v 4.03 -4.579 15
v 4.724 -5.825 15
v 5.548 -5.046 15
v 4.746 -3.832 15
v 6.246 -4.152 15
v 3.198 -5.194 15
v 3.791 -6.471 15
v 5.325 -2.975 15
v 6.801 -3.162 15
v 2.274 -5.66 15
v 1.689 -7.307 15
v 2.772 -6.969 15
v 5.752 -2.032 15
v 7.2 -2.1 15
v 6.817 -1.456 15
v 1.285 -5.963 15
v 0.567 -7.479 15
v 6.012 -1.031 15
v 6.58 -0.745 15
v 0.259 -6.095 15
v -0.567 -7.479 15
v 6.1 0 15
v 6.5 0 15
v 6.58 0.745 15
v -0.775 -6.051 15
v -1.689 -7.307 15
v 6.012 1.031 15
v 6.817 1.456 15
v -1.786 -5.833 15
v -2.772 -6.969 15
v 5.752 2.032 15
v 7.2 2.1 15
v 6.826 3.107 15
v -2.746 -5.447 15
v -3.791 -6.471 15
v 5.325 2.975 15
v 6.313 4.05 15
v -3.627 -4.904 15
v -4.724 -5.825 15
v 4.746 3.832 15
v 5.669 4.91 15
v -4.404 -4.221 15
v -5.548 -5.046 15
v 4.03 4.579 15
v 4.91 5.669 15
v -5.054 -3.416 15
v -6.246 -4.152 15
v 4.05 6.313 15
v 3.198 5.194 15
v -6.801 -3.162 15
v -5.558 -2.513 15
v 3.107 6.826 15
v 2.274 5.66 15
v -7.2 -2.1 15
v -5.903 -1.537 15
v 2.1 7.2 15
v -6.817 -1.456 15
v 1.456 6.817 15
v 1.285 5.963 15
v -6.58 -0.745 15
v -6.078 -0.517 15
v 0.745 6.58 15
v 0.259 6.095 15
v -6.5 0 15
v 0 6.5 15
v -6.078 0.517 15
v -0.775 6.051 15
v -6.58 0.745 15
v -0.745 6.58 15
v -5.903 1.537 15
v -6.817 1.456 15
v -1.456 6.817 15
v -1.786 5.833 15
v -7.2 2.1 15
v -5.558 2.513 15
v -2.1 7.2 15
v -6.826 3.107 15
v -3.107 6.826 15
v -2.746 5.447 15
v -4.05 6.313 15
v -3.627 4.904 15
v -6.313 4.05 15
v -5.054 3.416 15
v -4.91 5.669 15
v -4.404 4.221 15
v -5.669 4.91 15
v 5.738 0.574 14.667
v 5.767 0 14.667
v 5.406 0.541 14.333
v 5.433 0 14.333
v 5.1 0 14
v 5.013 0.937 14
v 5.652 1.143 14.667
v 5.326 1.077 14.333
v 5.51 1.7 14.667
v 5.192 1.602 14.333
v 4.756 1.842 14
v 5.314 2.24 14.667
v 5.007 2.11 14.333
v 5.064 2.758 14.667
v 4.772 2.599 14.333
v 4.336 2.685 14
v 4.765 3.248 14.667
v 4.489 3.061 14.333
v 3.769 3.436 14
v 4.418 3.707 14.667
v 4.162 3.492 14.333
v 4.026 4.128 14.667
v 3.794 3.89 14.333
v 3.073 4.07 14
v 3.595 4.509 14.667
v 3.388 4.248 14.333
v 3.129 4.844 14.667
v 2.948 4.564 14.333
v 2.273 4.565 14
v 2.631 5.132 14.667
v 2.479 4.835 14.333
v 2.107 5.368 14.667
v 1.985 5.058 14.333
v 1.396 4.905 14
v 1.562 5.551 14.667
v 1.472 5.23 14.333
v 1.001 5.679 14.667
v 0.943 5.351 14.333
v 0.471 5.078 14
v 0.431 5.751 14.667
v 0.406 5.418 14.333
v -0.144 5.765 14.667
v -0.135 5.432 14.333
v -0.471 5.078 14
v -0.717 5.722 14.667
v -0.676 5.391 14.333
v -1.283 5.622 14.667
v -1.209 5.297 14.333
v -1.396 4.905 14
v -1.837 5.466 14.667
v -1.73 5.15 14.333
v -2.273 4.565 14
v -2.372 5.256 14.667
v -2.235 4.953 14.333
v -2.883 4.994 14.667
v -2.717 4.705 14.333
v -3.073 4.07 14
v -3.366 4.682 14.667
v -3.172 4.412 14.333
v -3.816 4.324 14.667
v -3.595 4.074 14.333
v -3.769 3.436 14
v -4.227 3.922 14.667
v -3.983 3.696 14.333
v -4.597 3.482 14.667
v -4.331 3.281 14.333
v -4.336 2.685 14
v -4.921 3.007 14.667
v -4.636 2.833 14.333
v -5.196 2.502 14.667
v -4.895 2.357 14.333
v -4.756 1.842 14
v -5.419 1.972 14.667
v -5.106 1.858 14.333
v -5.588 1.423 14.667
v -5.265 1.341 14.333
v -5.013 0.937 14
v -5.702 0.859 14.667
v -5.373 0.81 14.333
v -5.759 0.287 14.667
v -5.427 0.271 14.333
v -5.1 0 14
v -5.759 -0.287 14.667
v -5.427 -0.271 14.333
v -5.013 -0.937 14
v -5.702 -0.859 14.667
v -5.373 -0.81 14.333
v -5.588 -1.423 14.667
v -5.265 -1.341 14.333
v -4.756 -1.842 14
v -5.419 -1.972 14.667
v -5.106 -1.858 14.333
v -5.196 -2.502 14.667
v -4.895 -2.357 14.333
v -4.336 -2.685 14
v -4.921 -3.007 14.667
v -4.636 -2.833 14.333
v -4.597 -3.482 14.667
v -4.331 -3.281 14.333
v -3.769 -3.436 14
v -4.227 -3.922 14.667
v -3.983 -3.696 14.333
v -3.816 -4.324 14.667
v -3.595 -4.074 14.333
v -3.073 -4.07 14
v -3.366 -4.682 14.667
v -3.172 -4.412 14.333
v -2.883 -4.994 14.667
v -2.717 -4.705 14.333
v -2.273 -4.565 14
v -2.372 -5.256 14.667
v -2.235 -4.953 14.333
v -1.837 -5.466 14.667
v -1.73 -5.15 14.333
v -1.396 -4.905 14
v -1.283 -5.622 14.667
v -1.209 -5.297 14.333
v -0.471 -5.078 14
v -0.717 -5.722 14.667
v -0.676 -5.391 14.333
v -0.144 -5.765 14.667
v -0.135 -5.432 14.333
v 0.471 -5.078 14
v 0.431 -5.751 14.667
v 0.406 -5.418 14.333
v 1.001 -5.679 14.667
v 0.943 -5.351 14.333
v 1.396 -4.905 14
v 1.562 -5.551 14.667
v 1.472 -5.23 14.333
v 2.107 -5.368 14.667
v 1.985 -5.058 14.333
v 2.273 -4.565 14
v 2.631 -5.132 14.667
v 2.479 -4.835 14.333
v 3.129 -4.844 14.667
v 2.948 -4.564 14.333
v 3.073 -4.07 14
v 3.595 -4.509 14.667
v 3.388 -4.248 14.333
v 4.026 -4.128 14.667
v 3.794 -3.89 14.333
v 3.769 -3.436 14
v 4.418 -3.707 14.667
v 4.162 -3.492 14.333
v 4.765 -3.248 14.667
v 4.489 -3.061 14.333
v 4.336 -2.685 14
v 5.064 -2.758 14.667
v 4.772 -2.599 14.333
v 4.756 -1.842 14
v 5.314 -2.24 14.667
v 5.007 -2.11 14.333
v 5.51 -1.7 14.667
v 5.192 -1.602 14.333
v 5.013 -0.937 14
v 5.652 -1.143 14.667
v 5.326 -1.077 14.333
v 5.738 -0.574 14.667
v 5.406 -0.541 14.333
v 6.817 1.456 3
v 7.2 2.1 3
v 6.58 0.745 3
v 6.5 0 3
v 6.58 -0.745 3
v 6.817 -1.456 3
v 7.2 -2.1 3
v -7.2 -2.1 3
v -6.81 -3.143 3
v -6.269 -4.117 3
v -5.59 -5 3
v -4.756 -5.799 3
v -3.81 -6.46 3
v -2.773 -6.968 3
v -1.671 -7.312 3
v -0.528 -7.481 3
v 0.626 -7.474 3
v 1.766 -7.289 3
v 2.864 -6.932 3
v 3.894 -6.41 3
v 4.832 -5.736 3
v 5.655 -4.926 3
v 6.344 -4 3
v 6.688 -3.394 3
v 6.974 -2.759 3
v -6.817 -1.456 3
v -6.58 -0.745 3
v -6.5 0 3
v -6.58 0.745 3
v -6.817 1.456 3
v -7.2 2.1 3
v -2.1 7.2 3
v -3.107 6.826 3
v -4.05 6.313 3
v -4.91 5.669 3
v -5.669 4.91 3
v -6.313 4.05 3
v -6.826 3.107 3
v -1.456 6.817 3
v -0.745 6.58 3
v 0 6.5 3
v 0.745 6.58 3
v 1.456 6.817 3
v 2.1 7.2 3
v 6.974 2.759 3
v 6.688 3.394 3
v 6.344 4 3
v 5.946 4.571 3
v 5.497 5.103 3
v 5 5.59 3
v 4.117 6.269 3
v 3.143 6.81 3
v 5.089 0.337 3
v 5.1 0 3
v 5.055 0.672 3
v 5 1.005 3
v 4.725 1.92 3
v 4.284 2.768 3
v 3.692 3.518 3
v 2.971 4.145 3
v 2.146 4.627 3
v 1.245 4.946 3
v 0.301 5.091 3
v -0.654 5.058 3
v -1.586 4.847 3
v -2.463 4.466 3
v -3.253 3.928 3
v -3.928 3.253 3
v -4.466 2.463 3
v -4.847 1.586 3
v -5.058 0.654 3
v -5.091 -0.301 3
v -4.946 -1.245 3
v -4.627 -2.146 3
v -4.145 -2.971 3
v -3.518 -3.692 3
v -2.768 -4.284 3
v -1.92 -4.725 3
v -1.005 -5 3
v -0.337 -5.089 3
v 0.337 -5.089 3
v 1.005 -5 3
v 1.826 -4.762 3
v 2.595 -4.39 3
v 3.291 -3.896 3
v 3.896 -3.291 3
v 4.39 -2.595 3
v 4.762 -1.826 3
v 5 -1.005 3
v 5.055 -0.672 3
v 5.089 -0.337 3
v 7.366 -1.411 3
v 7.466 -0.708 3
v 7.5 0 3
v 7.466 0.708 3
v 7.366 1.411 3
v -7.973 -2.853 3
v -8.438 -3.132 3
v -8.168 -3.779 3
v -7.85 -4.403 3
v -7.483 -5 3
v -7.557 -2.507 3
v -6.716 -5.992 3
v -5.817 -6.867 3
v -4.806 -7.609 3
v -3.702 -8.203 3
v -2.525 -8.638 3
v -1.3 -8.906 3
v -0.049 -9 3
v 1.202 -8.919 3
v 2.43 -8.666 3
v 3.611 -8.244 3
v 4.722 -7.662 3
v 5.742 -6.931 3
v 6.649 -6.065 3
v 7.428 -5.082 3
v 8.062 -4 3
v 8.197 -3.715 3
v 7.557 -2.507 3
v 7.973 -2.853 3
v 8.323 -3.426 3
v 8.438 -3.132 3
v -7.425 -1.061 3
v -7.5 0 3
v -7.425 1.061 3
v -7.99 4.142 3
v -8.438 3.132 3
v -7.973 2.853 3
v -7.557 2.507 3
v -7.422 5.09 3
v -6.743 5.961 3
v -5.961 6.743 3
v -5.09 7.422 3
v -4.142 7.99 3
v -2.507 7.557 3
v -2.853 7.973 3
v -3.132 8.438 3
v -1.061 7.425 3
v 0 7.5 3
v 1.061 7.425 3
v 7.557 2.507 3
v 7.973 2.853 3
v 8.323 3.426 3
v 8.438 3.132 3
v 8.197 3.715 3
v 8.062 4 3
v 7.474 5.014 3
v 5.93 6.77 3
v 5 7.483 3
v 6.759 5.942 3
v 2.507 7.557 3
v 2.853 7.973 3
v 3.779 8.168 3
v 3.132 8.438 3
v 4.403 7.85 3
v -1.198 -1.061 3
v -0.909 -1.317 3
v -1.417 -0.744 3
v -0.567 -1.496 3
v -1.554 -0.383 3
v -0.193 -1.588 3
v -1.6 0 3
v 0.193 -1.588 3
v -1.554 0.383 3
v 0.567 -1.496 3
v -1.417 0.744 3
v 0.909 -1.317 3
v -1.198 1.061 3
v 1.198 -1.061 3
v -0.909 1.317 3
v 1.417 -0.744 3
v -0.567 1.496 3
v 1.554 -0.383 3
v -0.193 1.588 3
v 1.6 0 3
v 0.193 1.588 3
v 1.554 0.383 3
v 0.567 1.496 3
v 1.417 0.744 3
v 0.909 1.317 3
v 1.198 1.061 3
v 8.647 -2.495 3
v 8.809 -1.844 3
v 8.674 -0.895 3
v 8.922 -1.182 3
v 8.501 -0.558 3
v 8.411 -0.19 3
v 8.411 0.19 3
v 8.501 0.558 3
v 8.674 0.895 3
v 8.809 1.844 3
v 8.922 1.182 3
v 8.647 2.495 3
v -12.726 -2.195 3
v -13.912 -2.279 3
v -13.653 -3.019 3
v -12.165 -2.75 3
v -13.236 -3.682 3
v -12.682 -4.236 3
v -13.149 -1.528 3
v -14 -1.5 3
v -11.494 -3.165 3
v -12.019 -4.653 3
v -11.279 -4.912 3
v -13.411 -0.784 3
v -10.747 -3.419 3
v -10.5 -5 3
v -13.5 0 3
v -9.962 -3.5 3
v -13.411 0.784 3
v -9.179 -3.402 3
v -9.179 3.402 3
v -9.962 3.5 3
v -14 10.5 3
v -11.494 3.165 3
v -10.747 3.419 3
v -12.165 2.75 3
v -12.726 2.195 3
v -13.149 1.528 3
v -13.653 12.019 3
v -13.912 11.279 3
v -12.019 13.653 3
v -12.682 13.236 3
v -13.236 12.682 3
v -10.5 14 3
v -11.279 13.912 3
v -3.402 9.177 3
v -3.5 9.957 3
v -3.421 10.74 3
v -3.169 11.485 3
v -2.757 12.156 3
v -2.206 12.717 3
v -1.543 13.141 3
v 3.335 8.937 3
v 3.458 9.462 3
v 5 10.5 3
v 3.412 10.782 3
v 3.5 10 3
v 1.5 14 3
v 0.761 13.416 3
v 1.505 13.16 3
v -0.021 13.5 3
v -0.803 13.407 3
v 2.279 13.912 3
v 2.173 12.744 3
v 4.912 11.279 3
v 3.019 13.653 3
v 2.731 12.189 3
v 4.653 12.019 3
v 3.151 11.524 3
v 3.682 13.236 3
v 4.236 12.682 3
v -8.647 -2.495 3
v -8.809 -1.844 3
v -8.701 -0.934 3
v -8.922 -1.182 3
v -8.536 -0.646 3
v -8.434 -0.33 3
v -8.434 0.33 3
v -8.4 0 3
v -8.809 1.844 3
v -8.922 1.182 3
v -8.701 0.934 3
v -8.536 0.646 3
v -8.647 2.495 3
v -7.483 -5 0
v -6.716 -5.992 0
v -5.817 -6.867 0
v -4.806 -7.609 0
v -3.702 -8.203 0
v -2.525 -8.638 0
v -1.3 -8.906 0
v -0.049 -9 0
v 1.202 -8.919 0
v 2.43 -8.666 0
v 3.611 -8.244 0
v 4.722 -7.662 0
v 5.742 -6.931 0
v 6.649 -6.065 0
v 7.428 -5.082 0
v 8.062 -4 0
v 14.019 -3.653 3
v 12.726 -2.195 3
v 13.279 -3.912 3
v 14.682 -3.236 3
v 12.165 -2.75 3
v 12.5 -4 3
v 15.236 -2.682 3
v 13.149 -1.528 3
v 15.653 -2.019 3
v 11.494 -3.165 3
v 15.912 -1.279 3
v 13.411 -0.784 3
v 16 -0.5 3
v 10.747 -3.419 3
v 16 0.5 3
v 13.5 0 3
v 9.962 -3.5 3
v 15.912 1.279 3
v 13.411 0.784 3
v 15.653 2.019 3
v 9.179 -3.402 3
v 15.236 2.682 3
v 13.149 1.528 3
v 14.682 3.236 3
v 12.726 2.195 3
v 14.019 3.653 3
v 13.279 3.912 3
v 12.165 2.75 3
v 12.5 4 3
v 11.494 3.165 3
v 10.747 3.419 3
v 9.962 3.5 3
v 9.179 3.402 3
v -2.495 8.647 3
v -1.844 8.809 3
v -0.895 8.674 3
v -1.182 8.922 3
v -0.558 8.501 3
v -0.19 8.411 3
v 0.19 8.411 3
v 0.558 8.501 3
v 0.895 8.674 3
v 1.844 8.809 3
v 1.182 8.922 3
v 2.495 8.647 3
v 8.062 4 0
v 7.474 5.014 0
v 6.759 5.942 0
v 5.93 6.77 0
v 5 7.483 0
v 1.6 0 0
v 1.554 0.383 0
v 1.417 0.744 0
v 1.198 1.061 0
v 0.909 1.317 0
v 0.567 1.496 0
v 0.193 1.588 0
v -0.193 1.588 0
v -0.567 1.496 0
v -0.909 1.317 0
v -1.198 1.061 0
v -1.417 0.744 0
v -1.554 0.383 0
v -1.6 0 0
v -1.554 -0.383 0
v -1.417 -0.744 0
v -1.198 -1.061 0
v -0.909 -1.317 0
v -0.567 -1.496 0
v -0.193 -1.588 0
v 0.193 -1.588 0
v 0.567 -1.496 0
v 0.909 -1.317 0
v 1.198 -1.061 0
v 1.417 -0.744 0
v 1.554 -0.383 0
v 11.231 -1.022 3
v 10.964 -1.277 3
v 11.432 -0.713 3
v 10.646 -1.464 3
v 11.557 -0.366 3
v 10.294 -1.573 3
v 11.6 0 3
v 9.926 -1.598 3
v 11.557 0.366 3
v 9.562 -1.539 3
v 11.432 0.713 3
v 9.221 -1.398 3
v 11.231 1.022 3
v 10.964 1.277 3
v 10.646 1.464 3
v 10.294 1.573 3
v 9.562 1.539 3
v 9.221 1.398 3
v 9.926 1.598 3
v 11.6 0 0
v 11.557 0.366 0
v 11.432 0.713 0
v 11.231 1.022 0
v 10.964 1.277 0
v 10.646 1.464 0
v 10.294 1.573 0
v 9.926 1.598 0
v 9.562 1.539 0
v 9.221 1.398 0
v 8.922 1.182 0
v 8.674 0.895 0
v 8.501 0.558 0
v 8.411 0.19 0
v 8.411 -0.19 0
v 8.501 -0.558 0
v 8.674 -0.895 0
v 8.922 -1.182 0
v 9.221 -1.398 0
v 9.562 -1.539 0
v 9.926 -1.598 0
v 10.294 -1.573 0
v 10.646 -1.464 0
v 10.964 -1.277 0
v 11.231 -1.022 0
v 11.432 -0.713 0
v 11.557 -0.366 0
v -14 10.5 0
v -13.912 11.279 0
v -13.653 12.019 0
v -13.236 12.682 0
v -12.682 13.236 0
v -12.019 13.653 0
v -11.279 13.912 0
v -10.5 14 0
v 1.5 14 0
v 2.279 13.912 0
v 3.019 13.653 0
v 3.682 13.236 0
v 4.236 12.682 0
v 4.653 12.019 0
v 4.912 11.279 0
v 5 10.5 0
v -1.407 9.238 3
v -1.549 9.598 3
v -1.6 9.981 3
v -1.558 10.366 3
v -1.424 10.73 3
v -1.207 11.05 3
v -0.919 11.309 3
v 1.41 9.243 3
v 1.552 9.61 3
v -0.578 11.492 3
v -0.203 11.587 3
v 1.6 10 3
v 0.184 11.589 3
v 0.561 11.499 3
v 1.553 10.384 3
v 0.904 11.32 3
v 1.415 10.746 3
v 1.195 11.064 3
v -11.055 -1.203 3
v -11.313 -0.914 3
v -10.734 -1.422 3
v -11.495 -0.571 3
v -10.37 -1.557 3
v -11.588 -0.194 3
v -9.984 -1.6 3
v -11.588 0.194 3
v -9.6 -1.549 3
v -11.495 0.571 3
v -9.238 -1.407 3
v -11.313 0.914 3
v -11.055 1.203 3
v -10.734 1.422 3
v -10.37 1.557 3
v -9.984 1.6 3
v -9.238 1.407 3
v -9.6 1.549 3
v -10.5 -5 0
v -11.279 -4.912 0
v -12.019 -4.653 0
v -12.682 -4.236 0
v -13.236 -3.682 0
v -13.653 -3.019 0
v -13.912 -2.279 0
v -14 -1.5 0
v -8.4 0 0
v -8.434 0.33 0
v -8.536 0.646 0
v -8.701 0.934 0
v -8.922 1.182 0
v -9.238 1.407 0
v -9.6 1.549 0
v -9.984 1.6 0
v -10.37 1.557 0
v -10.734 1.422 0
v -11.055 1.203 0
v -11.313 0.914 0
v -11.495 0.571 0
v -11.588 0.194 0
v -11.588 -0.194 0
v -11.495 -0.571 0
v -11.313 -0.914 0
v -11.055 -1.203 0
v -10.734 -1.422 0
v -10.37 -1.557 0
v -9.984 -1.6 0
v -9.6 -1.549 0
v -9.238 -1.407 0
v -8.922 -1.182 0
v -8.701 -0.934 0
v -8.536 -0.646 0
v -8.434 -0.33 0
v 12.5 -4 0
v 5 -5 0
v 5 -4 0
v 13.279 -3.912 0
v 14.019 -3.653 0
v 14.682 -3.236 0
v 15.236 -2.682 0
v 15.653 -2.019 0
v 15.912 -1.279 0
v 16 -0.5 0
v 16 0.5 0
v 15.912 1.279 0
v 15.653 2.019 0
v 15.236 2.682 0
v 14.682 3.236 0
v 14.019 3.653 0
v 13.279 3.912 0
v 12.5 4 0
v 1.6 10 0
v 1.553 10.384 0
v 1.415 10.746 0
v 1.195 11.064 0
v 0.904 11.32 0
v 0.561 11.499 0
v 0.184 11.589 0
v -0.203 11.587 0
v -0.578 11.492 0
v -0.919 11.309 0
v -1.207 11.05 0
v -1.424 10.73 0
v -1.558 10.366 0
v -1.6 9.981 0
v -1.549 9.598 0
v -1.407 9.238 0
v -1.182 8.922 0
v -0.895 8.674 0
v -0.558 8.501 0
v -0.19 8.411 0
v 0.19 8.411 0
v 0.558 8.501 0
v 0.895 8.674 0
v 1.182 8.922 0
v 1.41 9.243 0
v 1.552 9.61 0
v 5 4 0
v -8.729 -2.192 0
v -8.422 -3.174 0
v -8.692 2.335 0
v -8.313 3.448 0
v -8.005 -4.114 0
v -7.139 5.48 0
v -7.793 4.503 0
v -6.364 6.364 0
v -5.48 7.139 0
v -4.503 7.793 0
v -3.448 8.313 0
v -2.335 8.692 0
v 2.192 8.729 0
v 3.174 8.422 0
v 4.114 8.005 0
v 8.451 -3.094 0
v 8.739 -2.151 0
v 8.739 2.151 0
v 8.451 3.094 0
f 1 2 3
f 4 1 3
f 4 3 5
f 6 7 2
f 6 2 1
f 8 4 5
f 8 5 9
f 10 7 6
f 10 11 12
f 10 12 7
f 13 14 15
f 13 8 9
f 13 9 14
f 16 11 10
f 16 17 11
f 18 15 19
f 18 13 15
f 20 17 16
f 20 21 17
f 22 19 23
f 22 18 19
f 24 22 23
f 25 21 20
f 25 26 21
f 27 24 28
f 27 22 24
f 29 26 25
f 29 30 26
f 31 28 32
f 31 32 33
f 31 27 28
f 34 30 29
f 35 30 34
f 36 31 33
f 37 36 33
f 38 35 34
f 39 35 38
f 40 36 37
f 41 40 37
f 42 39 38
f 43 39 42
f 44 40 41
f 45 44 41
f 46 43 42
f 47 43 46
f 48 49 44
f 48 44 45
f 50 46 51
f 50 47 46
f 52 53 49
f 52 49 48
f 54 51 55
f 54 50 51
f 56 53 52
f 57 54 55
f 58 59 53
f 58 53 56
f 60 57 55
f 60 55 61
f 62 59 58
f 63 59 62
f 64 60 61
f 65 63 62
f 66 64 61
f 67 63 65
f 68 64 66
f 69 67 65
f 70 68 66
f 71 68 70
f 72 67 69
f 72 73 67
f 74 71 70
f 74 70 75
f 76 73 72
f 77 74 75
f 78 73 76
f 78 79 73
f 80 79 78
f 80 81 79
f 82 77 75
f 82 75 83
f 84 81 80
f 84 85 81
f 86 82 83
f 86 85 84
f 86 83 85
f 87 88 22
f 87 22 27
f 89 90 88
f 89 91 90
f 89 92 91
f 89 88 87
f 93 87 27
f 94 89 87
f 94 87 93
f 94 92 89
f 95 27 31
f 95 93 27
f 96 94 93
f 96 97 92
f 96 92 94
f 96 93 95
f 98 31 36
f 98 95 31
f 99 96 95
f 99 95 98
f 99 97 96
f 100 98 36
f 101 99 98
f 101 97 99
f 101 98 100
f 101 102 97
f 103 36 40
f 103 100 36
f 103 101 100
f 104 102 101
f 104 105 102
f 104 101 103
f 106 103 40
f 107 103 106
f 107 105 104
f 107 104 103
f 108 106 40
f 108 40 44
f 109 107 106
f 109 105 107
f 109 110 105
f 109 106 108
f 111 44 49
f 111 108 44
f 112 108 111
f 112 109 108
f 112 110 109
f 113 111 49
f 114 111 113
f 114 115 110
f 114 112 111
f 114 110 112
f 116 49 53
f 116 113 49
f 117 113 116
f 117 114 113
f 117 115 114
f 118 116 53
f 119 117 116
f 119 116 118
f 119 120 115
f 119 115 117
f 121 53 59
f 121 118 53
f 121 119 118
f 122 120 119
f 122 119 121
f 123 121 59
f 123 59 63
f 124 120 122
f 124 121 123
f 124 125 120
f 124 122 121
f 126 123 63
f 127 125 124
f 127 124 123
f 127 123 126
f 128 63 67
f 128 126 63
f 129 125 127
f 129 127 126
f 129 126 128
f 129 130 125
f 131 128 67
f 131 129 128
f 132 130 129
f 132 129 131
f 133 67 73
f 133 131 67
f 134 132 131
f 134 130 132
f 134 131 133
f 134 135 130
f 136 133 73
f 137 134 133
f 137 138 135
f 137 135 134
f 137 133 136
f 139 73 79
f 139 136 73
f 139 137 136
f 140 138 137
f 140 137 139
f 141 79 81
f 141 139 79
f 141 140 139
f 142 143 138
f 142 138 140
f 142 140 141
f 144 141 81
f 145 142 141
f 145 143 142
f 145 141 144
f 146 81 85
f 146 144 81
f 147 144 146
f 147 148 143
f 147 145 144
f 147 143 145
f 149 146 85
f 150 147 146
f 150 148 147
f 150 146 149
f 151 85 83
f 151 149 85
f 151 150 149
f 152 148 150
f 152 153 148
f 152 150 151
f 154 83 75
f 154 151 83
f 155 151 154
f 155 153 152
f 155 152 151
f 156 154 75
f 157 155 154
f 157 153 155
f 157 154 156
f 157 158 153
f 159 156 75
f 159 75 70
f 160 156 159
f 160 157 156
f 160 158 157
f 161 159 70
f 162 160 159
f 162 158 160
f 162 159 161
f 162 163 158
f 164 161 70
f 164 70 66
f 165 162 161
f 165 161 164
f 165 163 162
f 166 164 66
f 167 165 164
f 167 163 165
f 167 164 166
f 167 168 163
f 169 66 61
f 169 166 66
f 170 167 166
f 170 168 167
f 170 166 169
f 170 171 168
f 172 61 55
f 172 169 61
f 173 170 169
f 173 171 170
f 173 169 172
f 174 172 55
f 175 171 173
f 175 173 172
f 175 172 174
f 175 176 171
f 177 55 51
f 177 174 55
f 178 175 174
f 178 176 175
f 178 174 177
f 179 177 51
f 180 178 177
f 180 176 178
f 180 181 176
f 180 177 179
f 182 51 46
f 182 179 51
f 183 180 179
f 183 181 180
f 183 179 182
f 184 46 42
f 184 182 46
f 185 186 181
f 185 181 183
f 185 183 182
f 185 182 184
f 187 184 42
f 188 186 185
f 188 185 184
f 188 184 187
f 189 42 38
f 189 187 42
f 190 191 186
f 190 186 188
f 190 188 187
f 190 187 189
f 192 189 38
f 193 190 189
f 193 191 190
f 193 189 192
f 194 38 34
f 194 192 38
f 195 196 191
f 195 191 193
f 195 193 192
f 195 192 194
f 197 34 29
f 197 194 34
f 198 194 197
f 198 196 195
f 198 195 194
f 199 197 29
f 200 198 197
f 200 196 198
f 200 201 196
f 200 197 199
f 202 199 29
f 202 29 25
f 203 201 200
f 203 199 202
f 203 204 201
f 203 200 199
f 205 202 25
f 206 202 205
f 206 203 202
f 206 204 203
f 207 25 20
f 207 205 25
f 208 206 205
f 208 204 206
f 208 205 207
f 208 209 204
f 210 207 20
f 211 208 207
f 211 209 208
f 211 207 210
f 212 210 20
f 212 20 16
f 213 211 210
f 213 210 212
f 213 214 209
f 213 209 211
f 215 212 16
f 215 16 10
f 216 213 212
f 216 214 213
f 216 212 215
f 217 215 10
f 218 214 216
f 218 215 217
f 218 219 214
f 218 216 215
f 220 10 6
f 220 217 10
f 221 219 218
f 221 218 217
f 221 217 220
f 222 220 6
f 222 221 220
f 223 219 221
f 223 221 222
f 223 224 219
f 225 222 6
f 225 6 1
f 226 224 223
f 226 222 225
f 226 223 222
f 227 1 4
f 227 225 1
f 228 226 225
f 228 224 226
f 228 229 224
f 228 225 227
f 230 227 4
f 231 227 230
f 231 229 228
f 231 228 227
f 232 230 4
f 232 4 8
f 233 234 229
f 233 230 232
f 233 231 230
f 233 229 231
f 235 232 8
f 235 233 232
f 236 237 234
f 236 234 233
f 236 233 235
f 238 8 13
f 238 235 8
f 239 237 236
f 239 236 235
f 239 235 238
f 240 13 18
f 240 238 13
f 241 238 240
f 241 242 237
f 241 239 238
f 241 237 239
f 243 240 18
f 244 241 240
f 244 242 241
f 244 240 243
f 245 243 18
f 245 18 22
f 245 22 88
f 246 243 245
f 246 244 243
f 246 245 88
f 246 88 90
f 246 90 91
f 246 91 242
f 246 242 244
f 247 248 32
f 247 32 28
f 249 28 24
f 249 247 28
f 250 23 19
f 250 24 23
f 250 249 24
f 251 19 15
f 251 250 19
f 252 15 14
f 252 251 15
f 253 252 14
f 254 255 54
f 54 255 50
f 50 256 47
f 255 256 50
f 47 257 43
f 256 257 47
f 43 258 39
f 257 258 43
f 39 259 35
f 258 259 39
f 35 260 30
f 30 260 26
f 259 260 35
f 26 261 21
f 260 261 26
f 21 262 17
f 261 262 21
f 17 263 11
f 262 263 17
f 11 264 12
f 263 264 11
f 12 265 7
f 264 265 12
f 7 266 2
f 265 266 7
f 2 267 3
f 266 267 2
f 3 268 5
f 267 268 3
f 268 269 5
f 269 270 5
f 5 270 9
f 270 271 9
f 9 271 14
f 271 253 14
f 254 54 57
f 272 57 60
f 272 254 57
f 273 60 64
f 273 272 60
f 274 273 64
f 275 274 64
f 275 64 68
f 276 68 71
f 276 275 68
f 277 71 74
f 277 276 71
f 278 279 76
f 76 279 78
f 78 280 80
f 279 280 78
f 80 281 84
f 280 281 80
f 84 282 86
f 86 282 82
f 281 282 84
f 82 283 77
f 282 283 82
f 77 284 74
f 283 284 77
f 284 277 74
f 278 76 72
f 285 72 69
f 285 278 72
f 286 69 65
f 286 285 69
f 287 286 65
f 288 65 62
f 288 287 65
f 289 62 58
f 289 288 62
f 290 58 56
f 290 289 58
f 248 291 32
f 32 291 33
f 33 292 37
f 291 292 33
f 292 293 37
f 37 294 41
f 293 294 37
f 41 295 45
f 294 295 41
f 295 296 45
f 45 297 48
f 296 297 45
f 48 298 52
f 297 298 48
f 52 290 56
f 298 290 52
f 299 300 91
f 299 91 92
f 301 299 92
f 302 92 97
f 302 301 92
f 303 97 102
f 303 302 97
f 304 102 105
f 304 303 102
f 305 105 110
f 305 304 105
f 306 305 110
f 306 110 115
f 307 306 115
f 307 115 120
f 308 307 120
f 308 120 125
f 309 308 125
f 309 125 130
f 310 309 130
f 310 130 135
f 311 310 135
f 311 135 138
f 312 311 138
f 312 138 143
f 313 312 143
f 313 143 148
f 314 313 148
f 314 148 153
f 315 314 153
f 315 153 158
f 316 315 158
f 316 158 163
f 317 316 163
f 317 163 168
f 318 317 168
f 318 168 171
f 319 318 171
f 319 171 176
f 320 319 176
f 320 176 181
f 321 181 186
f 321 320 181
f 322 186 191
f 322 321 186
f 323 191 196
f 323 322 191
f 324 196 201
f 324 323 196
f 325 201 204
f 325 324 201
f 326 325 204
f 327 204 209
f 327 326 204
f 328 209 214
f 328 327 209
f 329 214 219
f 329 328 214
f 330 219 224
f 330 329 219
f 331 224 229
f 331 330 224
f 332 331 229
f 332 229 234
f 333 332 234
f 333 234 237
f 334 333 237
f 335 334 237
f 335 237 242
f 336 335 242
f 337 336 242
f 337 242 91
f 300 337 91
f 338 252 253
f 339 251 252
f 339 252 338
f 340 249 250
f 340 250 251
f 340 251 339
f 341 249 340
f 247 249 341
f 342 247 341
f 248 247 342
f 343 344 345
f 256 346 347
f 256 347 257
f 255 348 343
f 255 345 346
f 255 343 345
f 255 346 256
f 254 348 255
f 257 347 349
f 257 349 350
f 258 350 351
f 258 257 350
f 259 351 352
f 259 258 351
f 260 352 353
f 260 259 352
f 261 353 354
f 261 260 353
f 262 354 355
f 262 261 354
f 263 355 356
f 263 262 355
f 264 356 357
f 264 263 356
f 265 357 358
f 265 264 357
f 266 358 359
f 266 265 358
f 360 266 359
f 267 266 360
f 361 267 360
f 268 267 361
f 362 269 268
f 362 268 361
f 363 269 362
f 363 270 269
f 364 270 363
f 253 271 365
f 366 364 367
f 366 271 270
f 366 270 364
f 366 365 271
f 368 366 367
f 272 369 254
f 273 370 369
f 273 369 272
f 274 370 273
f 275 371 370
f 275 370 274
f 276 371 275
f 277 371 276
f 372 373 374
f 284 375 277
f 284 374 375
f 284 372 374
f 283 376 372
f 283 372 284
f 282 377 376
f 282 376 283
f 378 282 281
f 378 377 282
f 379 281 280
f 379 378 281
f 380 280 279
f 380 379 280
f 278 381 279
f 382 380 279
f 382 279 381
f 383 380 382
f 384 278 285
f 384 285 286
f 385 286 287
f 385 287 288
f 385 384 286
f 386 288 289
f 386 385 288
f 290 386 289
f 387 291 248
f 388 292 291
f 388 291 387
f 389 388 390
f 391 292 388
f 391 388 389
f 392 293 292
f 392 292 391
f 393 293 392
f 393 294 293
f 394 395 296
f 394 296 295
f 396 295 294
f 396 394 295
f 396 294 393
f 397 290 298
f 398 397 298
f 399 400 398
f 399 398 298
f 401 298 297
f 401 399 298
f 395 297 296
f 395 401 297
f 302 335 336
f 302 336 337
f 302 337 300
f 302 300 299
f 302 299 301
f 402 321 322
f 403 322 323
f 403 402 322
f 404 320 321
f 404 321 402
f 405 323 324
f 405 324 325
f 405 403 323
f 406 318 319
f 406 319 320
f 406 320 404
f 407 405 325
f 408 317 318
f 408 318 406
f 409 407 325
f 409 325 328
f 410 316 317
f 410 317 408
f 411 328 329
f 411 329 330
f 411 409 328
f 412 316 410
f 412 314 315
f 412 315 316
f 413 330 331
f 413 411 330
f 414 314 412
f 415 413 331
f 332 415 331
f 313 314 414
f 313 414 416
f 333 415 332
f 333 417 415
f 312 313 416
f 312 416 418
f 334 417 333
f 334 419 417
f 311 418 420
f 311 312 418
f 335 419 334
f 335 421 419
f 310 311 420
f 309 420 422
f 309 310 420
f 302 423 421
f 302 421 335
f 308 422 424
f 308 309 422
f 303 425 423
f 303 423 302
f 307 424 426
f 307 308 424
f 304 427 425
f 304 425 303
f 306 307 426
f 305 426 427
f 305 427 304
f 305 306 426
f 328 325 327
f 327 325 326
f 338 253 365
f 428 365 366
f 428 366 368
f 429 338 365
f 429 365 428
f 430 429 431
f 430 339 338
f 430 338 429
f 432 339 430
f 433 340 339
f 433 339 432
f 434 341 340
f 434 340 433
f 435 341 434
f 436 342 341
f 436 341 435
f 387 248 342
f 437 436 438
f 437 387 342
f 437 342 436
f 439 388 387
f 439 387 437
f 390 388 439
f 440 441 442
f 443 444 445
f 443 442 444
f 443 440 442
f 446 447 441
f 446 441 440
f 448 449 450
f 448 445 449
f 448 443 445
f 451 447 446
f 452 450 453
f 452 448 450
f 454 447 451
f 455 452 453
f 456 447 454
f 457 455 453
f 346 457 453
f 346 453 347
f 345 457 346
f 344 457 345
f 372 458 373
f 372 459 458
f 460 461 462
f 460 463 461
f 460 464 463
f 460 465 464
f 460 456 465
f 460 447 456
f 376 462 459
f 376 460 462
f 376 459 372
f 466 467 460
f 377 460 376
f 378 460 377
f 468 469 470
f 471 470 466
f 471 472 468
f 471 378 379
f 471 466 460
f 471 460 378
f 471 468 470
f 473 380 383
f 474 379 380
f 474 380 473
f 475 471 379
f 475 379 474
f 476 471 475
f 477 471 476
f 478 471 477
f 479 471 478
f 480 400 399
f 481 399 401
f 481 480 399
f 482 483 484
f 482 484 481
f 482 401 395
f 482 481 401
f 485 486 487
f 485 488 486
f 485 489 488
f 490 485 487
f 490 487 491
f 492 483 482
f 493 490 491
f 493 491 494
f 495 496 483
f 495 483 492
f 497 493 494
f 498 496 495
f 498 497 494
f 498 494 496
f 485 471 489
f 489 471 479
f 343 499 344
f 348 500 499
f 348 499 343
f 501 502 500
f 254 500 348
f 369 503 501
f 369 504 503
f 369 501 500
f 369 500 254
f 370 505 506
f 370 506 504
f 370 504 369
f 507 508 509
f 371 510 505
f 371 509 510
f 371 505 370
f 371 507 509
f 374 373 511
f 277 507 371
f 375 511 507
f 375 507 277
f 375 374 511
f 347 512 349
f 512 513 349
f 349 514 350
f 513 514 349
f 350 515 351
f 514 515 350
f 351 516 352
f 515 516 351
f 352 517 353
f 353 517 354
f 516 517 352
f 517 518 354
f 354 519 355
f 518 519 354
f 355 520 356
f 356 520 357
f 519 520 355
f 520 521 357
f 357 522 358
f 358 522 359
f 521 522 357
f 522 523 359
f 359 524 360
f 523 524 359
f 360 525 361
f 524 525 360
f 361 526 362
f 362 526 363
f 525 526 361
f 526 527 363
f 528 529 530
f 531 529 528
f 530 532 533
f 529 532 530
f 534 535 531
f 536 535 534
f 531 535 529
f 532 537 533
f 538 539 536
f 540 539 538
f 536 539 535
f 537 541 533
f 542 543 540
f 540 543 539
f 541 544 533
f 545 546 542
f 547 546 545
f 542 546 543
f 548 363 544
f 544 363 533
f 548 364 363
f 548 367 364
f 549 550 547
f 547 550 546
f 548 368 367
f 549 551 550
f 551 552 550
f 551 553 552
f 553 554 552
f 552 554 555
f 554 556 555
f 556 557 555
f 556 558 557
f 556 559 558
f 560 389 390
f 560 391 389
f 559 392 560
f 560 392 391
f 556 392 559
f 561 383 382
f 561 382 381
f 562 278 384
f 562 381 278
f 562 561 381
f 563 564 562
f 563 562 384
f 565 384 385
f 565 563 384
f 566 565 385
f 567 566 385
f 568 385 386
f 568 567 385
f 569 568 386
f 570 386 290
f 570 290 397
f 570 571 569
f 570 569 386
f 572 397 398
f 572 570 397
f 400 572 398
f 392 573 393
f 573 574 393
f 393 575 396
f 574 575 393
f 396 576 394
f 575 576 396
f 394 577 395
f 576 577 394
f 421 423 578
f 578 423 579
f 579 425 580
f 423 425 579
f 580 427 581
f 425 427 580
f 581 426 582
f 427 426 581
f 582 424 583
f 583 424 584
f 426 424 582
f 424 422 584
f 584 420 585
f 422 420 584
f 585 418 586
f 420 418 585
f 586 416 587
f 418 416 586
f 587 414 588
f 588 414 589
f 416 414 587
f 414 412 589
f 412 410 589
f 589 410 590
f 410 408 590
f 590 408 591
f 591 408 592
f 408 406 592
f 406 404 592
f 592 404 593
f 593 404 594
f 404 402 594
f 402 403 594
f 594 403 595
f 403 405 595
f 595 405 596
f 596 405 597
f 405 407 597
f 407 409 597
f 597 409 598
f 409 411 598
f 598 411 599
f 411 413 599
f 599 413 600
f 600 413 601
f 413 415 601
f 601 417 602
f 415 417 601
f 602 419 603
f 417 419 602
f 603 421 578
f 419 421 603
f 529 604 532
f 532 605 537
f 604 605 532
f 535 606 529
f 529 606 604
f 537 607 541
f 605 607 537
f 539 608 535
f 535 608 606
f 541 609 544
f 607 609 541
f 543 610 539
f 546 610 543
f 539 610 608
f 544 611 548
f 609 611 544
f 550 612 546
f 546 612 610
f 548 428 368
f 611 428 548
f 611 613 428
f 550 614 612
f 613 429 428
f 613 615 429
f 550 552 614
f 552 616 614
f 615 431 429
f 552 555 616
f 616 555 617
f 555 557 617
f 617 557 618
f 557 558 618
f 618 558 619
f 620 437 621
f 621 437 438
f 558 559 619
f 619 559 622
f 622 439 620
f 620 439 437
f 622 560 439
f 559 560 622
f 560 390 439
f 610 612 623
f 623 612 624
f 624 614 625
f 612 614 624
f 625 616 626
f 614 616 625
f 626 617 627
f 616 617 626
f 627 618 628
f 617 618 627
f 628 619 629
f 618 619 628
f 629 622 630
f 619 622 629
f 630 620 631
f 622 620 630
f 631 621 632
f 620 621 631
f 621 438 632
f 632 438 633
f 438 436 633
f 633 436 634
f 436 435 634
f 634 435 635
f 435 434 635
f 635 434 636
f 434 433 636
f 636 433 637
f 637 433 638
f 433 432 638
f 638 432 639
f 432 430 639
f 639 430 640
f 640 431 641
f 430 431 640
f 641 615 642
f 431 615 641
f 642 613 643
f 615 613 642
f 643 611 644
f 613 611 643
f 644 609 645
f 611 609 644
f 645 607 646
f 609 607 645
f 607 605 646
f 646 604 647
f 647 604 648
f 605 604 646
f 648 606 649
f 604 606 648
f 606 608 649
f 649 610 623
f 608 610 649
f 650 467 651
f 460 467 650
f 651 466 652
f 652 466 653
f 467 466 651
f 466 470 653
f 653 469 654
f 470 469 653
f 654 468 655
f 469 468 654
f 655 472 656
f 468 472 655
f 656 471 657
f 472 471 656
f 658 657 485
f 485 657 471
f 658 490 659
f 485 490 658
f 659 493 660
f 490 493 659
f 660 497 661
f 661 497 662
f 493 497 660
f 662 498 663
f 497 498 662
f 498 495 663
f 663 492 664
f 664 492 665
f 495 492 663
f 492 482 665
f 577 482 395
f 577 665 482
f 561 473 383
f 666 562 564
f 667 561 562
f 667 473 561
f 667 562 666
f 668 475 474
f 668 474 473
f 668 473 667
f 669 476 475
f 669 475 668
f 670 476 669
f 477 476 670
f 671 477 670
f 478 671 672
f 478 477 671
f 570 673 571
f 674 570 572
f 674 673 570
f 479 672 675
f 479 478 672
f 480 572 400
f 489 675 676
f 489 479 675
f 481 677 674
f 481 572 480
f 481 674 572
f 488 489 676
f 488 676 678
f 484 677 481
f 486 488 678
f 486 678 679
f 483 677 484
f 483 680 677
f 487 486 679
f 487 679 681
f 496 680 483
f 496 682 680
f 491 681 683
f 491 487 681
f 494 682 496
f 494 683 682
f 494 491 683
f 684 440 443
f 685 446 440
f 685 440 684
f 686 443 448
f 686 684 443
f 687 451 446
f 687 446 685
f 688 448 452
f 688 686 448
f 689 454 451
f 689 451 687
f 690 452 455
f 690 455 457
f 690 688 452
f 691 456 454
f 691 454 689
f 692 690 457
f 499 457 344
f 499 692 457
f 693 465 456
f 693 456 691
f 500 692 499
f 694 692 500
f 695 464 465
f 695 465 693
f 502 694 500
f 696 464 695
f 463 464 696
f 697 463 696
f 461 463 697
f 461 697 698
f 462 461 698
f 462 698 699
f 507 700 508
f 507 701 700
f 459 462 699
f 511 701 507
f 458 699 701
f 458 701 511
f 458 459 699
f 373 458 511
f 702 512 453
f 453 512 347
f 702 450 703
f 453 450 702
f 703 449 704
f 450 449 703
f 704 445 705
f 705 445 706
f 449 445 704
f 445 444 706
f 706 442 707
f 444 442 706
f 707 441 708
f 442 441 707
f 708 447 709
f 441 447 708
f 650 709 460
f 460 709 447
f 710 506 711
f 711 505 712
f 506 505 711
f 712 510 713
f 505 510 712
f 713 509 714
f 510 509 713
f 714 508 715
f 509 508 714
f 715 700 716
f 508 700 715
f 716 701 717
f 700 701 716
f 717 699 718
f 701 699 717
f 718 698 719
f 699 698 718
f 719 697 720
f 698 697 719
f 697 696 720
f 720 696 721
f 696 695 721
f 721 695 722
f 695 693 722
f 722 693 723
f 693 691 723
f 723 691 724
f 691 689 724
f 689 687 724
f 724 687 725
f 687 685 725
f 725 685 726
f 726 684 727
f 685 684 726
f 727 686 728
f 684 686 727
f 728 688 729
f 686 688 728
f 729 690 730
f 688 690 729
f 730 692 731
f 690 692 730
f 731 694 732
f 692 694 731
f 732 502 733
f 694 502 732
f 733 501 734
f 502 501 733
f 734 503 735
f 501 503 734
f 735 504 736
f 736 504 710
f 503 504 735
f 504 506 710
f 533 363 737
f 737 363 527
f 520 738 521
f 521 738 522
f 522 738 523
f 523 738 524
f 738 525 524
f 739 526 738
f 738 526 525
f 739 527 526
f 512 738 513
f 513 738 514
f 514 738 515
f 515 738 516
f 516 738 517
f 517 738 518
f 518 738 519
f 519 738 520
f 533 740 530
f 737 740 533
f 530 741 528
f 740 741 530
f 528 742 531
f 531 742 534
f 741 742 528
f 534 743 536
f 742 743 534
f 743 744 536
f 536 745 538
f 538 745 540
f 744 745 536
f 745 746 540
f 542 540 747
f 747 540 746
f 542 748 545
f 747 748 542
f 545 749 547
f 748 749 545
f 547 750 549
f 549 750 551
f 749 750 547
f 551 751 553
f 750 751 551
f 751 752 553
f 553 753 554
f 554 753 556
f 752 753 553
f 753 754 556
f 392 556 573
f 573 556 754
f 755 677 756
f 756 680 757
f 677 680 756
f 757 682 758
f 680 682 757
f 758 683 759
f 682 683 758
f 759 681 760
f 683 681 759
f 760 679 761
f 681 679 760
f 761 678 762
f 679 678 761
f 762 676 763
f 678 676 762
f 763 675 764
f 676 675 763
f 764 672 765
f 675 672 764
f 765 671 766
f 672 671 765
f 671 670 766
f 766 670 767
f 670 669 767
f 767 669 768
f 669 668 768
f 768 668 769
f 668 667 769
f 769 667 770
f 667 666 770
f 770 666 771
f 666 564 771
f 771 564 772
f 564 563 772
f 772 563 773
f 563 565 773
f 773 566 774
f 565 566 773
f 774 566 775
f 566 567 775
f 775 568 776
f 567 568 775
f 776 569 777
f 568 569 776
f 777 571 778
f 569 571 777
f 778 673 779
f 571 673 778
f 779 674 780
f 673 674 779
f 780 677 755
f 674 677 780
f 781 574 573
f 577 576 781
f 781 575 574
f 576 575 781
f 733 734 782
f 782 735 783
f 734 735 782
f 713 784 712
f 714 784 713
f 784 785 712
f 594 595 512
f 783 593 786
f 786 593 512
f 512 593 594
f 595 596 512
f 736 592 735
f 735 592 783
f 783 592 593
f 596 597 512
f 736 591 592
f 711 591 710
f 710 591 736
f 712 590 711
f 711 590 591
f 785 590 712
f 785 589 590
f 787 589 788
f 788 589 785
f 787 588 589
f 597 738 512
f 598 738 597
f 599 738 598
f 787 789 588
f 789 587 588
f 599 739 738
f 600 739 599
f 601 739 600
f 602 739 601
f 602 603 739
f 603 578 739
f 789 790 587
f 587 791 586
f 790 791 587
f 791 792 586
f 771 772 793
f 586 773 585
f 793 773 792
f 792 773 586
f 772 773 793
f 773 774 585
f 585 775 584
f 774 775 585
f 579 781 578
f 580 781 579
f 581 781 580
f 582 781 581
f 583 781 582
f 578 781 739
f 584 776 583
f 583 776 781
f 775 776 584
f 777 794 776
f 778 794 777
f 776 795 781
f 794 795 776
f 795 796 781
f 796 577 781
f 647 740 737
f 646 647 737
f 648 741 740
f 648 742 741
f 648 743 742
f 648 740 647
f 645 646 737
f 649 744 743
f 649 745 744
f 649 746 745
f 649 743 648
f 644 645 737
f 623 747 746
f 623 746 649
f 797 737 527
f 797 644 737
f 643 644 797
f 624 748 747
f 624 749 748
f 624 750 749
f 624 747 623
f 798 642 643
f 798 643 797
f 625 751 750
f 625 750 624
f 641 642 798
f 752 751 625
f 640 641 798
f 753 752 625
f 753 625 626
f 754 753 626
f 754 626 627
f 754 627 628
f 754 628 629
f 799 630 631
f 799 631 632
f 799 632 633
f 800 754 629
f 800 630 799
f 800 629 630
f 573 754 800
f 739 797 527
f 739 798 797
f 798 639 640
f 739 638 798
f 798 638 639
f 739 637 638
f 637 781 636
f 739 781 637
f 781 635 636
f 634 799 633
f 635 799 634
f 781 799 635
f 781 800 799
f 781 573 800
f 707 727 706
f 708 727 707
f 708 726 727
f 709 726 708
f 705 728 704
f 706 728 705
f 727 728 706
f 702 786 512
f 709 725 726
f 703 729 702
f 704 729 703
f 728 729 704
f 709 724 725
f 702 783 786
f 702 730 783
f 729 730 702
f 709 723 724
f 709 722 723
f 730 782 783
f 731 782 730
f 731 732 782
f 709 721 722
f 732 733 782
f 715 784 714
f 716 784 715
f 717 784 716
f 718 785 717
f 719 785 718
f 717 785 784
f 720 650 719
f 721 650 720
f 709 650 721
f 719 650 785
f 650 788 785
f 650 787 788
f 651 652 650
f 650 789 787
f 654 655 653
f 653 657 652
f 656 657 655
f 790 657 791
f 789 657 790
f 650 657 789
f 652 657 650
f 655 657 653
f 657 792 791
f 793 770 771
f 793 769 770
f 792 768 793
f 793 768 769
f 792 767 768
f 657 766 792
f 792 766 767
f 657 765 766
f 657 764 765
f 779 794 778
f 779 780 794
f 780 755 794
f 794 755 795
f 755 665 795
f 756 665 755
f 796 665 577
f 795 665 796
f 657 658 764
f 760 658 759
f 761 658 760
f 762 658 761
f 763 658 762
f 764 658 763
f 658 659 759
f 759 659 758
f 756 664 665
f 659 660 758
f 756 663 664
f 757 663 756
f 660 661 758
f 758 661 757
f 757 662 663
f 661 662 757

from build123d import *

# Parameters (mm, degrees)
SKETCH_R        = 9
SKETCH_R_2      = 1.6
PAD_DEPTH       = 3
SKETCH001_R     = 7.5
SKETCH001_R_2   = 5.1
PAD001_DEPTH    = 12
SKETCH002_W     = 19
SKETCH002_H     = 19
PAD002_DEPTH    = 3
SKETCH003_R     = 1.6
POCKET_DEPTH    = 3.001
SKETCH004_W     = 11
SKETCH004_H     = 8
PAD003_DEPTH    = 3
FILLET_R        = 3.5
SKETCH005_R     = 1.6
POCKET001_DEPTH = 3.001
SKETCH006_R     = 3.5
POCKET002_DEPTH = 12.001
CHAMFER_SIZE    = 1


with BuildPart() as part:
    # Sketch → Pad (new body)
    with BuildSketch(Plane.XY):
        Circle(SKETCH_R)
        Circle(SKETCH_R_2, mode=Mode.SUBTRACT)
    extrude(amount=PAD_DEPTH)

    # Sketch001 (on Face4 of Pad) → Pad001 (join)
    with BuildSketch(Plane.XY.offset(3)):
        Circle(SKETCH001_R)
        Circle(SKETCH001_R_2, mode=Mode.SUBTRACT)
    extrude(amount=PAD001_DEPTH)

    # Sketch002 (on Face2 of Pad001) → Pad002 (join)
    with BuildSketch(Plane(origin=(0, 0, 0), x_dir=(1, 0, 0), z_dir=(0, 0, -1))):
        with Locations((-4.5, -4.5)):
            Rectangle(SKETCH002_W, SKETCH002_H)
    extrude(amount=-PAD002_DEPTH)

    # Sketch003 (on Face10 of Pad002) → Pocket (cut, through all)
    with BuildSketch(Plane.XY.offset(3)):
        Circle(SKETCH003_R)
    extrude(amount=-POCKET_DEPTH, mode=Mode.SUBTRACT)

    # Sketch004 (on Face16 of Pocket) → Pad003 (join)
    with BuildSketch(Plane.XY.offset(3)):
        with Locations((10.5, 0)):
            Rectangle(SKETCH004_W, SKETCH004_H)
    extrude(amount=-PAD003_DEPTH)

    # Fillet
    fillet_edges = [part.edges().sort_by_distance(p)[0] for p in [
        (-14, -5, 1.5),
        (-14, 14, 1.5),
        (5, 14, 1.5),
        (16, 4, 1.5),
        (16, -4, 1.5),
    ]]
    fillet(fillet_edges, radius=FILLET_R)

    # Sketch005 (on Face24 of Fillet) → Pocket001 (cut, through all)
    with BuildSketch(Plane.XY.offset(3)):
        with Locations((0, 10)):
            Circle(SKETCH005_R)
        with Locations((-10, 0)):
            Circle(SKETCH005_R)
        with Locations((10, 0)):
            Circle(SKETCH005_R)
    extrude(amount=-POCKET001_DEPTH, mode=Mode.SUBTRACT)

    # Sketch006 (on Face9 of Pocket001) → Pocket002 (cut, through all)
    with BuildSketch(Plane.XY.offset(3)):
        with Locations((0, 10)):
            Circle(SKETCH006_R)
        with Locations((-10, 0)):
            Circle(SKETCH006_R)
        with Locations((10, 0)):
            Circle(SKETCH006_R)
    extrude(amount=POCKET002_DEPTH, mode=Mode.SUBTRACT)

    # Chamfer
    chamfer_edges = [part.edges().sort_by_distance(p)[0] for p in [
        (-5.1, 0, 15),
    ]]
    chamfer(chamfer_edges, length=CHAMFER_SIZE)


solid = part.part
